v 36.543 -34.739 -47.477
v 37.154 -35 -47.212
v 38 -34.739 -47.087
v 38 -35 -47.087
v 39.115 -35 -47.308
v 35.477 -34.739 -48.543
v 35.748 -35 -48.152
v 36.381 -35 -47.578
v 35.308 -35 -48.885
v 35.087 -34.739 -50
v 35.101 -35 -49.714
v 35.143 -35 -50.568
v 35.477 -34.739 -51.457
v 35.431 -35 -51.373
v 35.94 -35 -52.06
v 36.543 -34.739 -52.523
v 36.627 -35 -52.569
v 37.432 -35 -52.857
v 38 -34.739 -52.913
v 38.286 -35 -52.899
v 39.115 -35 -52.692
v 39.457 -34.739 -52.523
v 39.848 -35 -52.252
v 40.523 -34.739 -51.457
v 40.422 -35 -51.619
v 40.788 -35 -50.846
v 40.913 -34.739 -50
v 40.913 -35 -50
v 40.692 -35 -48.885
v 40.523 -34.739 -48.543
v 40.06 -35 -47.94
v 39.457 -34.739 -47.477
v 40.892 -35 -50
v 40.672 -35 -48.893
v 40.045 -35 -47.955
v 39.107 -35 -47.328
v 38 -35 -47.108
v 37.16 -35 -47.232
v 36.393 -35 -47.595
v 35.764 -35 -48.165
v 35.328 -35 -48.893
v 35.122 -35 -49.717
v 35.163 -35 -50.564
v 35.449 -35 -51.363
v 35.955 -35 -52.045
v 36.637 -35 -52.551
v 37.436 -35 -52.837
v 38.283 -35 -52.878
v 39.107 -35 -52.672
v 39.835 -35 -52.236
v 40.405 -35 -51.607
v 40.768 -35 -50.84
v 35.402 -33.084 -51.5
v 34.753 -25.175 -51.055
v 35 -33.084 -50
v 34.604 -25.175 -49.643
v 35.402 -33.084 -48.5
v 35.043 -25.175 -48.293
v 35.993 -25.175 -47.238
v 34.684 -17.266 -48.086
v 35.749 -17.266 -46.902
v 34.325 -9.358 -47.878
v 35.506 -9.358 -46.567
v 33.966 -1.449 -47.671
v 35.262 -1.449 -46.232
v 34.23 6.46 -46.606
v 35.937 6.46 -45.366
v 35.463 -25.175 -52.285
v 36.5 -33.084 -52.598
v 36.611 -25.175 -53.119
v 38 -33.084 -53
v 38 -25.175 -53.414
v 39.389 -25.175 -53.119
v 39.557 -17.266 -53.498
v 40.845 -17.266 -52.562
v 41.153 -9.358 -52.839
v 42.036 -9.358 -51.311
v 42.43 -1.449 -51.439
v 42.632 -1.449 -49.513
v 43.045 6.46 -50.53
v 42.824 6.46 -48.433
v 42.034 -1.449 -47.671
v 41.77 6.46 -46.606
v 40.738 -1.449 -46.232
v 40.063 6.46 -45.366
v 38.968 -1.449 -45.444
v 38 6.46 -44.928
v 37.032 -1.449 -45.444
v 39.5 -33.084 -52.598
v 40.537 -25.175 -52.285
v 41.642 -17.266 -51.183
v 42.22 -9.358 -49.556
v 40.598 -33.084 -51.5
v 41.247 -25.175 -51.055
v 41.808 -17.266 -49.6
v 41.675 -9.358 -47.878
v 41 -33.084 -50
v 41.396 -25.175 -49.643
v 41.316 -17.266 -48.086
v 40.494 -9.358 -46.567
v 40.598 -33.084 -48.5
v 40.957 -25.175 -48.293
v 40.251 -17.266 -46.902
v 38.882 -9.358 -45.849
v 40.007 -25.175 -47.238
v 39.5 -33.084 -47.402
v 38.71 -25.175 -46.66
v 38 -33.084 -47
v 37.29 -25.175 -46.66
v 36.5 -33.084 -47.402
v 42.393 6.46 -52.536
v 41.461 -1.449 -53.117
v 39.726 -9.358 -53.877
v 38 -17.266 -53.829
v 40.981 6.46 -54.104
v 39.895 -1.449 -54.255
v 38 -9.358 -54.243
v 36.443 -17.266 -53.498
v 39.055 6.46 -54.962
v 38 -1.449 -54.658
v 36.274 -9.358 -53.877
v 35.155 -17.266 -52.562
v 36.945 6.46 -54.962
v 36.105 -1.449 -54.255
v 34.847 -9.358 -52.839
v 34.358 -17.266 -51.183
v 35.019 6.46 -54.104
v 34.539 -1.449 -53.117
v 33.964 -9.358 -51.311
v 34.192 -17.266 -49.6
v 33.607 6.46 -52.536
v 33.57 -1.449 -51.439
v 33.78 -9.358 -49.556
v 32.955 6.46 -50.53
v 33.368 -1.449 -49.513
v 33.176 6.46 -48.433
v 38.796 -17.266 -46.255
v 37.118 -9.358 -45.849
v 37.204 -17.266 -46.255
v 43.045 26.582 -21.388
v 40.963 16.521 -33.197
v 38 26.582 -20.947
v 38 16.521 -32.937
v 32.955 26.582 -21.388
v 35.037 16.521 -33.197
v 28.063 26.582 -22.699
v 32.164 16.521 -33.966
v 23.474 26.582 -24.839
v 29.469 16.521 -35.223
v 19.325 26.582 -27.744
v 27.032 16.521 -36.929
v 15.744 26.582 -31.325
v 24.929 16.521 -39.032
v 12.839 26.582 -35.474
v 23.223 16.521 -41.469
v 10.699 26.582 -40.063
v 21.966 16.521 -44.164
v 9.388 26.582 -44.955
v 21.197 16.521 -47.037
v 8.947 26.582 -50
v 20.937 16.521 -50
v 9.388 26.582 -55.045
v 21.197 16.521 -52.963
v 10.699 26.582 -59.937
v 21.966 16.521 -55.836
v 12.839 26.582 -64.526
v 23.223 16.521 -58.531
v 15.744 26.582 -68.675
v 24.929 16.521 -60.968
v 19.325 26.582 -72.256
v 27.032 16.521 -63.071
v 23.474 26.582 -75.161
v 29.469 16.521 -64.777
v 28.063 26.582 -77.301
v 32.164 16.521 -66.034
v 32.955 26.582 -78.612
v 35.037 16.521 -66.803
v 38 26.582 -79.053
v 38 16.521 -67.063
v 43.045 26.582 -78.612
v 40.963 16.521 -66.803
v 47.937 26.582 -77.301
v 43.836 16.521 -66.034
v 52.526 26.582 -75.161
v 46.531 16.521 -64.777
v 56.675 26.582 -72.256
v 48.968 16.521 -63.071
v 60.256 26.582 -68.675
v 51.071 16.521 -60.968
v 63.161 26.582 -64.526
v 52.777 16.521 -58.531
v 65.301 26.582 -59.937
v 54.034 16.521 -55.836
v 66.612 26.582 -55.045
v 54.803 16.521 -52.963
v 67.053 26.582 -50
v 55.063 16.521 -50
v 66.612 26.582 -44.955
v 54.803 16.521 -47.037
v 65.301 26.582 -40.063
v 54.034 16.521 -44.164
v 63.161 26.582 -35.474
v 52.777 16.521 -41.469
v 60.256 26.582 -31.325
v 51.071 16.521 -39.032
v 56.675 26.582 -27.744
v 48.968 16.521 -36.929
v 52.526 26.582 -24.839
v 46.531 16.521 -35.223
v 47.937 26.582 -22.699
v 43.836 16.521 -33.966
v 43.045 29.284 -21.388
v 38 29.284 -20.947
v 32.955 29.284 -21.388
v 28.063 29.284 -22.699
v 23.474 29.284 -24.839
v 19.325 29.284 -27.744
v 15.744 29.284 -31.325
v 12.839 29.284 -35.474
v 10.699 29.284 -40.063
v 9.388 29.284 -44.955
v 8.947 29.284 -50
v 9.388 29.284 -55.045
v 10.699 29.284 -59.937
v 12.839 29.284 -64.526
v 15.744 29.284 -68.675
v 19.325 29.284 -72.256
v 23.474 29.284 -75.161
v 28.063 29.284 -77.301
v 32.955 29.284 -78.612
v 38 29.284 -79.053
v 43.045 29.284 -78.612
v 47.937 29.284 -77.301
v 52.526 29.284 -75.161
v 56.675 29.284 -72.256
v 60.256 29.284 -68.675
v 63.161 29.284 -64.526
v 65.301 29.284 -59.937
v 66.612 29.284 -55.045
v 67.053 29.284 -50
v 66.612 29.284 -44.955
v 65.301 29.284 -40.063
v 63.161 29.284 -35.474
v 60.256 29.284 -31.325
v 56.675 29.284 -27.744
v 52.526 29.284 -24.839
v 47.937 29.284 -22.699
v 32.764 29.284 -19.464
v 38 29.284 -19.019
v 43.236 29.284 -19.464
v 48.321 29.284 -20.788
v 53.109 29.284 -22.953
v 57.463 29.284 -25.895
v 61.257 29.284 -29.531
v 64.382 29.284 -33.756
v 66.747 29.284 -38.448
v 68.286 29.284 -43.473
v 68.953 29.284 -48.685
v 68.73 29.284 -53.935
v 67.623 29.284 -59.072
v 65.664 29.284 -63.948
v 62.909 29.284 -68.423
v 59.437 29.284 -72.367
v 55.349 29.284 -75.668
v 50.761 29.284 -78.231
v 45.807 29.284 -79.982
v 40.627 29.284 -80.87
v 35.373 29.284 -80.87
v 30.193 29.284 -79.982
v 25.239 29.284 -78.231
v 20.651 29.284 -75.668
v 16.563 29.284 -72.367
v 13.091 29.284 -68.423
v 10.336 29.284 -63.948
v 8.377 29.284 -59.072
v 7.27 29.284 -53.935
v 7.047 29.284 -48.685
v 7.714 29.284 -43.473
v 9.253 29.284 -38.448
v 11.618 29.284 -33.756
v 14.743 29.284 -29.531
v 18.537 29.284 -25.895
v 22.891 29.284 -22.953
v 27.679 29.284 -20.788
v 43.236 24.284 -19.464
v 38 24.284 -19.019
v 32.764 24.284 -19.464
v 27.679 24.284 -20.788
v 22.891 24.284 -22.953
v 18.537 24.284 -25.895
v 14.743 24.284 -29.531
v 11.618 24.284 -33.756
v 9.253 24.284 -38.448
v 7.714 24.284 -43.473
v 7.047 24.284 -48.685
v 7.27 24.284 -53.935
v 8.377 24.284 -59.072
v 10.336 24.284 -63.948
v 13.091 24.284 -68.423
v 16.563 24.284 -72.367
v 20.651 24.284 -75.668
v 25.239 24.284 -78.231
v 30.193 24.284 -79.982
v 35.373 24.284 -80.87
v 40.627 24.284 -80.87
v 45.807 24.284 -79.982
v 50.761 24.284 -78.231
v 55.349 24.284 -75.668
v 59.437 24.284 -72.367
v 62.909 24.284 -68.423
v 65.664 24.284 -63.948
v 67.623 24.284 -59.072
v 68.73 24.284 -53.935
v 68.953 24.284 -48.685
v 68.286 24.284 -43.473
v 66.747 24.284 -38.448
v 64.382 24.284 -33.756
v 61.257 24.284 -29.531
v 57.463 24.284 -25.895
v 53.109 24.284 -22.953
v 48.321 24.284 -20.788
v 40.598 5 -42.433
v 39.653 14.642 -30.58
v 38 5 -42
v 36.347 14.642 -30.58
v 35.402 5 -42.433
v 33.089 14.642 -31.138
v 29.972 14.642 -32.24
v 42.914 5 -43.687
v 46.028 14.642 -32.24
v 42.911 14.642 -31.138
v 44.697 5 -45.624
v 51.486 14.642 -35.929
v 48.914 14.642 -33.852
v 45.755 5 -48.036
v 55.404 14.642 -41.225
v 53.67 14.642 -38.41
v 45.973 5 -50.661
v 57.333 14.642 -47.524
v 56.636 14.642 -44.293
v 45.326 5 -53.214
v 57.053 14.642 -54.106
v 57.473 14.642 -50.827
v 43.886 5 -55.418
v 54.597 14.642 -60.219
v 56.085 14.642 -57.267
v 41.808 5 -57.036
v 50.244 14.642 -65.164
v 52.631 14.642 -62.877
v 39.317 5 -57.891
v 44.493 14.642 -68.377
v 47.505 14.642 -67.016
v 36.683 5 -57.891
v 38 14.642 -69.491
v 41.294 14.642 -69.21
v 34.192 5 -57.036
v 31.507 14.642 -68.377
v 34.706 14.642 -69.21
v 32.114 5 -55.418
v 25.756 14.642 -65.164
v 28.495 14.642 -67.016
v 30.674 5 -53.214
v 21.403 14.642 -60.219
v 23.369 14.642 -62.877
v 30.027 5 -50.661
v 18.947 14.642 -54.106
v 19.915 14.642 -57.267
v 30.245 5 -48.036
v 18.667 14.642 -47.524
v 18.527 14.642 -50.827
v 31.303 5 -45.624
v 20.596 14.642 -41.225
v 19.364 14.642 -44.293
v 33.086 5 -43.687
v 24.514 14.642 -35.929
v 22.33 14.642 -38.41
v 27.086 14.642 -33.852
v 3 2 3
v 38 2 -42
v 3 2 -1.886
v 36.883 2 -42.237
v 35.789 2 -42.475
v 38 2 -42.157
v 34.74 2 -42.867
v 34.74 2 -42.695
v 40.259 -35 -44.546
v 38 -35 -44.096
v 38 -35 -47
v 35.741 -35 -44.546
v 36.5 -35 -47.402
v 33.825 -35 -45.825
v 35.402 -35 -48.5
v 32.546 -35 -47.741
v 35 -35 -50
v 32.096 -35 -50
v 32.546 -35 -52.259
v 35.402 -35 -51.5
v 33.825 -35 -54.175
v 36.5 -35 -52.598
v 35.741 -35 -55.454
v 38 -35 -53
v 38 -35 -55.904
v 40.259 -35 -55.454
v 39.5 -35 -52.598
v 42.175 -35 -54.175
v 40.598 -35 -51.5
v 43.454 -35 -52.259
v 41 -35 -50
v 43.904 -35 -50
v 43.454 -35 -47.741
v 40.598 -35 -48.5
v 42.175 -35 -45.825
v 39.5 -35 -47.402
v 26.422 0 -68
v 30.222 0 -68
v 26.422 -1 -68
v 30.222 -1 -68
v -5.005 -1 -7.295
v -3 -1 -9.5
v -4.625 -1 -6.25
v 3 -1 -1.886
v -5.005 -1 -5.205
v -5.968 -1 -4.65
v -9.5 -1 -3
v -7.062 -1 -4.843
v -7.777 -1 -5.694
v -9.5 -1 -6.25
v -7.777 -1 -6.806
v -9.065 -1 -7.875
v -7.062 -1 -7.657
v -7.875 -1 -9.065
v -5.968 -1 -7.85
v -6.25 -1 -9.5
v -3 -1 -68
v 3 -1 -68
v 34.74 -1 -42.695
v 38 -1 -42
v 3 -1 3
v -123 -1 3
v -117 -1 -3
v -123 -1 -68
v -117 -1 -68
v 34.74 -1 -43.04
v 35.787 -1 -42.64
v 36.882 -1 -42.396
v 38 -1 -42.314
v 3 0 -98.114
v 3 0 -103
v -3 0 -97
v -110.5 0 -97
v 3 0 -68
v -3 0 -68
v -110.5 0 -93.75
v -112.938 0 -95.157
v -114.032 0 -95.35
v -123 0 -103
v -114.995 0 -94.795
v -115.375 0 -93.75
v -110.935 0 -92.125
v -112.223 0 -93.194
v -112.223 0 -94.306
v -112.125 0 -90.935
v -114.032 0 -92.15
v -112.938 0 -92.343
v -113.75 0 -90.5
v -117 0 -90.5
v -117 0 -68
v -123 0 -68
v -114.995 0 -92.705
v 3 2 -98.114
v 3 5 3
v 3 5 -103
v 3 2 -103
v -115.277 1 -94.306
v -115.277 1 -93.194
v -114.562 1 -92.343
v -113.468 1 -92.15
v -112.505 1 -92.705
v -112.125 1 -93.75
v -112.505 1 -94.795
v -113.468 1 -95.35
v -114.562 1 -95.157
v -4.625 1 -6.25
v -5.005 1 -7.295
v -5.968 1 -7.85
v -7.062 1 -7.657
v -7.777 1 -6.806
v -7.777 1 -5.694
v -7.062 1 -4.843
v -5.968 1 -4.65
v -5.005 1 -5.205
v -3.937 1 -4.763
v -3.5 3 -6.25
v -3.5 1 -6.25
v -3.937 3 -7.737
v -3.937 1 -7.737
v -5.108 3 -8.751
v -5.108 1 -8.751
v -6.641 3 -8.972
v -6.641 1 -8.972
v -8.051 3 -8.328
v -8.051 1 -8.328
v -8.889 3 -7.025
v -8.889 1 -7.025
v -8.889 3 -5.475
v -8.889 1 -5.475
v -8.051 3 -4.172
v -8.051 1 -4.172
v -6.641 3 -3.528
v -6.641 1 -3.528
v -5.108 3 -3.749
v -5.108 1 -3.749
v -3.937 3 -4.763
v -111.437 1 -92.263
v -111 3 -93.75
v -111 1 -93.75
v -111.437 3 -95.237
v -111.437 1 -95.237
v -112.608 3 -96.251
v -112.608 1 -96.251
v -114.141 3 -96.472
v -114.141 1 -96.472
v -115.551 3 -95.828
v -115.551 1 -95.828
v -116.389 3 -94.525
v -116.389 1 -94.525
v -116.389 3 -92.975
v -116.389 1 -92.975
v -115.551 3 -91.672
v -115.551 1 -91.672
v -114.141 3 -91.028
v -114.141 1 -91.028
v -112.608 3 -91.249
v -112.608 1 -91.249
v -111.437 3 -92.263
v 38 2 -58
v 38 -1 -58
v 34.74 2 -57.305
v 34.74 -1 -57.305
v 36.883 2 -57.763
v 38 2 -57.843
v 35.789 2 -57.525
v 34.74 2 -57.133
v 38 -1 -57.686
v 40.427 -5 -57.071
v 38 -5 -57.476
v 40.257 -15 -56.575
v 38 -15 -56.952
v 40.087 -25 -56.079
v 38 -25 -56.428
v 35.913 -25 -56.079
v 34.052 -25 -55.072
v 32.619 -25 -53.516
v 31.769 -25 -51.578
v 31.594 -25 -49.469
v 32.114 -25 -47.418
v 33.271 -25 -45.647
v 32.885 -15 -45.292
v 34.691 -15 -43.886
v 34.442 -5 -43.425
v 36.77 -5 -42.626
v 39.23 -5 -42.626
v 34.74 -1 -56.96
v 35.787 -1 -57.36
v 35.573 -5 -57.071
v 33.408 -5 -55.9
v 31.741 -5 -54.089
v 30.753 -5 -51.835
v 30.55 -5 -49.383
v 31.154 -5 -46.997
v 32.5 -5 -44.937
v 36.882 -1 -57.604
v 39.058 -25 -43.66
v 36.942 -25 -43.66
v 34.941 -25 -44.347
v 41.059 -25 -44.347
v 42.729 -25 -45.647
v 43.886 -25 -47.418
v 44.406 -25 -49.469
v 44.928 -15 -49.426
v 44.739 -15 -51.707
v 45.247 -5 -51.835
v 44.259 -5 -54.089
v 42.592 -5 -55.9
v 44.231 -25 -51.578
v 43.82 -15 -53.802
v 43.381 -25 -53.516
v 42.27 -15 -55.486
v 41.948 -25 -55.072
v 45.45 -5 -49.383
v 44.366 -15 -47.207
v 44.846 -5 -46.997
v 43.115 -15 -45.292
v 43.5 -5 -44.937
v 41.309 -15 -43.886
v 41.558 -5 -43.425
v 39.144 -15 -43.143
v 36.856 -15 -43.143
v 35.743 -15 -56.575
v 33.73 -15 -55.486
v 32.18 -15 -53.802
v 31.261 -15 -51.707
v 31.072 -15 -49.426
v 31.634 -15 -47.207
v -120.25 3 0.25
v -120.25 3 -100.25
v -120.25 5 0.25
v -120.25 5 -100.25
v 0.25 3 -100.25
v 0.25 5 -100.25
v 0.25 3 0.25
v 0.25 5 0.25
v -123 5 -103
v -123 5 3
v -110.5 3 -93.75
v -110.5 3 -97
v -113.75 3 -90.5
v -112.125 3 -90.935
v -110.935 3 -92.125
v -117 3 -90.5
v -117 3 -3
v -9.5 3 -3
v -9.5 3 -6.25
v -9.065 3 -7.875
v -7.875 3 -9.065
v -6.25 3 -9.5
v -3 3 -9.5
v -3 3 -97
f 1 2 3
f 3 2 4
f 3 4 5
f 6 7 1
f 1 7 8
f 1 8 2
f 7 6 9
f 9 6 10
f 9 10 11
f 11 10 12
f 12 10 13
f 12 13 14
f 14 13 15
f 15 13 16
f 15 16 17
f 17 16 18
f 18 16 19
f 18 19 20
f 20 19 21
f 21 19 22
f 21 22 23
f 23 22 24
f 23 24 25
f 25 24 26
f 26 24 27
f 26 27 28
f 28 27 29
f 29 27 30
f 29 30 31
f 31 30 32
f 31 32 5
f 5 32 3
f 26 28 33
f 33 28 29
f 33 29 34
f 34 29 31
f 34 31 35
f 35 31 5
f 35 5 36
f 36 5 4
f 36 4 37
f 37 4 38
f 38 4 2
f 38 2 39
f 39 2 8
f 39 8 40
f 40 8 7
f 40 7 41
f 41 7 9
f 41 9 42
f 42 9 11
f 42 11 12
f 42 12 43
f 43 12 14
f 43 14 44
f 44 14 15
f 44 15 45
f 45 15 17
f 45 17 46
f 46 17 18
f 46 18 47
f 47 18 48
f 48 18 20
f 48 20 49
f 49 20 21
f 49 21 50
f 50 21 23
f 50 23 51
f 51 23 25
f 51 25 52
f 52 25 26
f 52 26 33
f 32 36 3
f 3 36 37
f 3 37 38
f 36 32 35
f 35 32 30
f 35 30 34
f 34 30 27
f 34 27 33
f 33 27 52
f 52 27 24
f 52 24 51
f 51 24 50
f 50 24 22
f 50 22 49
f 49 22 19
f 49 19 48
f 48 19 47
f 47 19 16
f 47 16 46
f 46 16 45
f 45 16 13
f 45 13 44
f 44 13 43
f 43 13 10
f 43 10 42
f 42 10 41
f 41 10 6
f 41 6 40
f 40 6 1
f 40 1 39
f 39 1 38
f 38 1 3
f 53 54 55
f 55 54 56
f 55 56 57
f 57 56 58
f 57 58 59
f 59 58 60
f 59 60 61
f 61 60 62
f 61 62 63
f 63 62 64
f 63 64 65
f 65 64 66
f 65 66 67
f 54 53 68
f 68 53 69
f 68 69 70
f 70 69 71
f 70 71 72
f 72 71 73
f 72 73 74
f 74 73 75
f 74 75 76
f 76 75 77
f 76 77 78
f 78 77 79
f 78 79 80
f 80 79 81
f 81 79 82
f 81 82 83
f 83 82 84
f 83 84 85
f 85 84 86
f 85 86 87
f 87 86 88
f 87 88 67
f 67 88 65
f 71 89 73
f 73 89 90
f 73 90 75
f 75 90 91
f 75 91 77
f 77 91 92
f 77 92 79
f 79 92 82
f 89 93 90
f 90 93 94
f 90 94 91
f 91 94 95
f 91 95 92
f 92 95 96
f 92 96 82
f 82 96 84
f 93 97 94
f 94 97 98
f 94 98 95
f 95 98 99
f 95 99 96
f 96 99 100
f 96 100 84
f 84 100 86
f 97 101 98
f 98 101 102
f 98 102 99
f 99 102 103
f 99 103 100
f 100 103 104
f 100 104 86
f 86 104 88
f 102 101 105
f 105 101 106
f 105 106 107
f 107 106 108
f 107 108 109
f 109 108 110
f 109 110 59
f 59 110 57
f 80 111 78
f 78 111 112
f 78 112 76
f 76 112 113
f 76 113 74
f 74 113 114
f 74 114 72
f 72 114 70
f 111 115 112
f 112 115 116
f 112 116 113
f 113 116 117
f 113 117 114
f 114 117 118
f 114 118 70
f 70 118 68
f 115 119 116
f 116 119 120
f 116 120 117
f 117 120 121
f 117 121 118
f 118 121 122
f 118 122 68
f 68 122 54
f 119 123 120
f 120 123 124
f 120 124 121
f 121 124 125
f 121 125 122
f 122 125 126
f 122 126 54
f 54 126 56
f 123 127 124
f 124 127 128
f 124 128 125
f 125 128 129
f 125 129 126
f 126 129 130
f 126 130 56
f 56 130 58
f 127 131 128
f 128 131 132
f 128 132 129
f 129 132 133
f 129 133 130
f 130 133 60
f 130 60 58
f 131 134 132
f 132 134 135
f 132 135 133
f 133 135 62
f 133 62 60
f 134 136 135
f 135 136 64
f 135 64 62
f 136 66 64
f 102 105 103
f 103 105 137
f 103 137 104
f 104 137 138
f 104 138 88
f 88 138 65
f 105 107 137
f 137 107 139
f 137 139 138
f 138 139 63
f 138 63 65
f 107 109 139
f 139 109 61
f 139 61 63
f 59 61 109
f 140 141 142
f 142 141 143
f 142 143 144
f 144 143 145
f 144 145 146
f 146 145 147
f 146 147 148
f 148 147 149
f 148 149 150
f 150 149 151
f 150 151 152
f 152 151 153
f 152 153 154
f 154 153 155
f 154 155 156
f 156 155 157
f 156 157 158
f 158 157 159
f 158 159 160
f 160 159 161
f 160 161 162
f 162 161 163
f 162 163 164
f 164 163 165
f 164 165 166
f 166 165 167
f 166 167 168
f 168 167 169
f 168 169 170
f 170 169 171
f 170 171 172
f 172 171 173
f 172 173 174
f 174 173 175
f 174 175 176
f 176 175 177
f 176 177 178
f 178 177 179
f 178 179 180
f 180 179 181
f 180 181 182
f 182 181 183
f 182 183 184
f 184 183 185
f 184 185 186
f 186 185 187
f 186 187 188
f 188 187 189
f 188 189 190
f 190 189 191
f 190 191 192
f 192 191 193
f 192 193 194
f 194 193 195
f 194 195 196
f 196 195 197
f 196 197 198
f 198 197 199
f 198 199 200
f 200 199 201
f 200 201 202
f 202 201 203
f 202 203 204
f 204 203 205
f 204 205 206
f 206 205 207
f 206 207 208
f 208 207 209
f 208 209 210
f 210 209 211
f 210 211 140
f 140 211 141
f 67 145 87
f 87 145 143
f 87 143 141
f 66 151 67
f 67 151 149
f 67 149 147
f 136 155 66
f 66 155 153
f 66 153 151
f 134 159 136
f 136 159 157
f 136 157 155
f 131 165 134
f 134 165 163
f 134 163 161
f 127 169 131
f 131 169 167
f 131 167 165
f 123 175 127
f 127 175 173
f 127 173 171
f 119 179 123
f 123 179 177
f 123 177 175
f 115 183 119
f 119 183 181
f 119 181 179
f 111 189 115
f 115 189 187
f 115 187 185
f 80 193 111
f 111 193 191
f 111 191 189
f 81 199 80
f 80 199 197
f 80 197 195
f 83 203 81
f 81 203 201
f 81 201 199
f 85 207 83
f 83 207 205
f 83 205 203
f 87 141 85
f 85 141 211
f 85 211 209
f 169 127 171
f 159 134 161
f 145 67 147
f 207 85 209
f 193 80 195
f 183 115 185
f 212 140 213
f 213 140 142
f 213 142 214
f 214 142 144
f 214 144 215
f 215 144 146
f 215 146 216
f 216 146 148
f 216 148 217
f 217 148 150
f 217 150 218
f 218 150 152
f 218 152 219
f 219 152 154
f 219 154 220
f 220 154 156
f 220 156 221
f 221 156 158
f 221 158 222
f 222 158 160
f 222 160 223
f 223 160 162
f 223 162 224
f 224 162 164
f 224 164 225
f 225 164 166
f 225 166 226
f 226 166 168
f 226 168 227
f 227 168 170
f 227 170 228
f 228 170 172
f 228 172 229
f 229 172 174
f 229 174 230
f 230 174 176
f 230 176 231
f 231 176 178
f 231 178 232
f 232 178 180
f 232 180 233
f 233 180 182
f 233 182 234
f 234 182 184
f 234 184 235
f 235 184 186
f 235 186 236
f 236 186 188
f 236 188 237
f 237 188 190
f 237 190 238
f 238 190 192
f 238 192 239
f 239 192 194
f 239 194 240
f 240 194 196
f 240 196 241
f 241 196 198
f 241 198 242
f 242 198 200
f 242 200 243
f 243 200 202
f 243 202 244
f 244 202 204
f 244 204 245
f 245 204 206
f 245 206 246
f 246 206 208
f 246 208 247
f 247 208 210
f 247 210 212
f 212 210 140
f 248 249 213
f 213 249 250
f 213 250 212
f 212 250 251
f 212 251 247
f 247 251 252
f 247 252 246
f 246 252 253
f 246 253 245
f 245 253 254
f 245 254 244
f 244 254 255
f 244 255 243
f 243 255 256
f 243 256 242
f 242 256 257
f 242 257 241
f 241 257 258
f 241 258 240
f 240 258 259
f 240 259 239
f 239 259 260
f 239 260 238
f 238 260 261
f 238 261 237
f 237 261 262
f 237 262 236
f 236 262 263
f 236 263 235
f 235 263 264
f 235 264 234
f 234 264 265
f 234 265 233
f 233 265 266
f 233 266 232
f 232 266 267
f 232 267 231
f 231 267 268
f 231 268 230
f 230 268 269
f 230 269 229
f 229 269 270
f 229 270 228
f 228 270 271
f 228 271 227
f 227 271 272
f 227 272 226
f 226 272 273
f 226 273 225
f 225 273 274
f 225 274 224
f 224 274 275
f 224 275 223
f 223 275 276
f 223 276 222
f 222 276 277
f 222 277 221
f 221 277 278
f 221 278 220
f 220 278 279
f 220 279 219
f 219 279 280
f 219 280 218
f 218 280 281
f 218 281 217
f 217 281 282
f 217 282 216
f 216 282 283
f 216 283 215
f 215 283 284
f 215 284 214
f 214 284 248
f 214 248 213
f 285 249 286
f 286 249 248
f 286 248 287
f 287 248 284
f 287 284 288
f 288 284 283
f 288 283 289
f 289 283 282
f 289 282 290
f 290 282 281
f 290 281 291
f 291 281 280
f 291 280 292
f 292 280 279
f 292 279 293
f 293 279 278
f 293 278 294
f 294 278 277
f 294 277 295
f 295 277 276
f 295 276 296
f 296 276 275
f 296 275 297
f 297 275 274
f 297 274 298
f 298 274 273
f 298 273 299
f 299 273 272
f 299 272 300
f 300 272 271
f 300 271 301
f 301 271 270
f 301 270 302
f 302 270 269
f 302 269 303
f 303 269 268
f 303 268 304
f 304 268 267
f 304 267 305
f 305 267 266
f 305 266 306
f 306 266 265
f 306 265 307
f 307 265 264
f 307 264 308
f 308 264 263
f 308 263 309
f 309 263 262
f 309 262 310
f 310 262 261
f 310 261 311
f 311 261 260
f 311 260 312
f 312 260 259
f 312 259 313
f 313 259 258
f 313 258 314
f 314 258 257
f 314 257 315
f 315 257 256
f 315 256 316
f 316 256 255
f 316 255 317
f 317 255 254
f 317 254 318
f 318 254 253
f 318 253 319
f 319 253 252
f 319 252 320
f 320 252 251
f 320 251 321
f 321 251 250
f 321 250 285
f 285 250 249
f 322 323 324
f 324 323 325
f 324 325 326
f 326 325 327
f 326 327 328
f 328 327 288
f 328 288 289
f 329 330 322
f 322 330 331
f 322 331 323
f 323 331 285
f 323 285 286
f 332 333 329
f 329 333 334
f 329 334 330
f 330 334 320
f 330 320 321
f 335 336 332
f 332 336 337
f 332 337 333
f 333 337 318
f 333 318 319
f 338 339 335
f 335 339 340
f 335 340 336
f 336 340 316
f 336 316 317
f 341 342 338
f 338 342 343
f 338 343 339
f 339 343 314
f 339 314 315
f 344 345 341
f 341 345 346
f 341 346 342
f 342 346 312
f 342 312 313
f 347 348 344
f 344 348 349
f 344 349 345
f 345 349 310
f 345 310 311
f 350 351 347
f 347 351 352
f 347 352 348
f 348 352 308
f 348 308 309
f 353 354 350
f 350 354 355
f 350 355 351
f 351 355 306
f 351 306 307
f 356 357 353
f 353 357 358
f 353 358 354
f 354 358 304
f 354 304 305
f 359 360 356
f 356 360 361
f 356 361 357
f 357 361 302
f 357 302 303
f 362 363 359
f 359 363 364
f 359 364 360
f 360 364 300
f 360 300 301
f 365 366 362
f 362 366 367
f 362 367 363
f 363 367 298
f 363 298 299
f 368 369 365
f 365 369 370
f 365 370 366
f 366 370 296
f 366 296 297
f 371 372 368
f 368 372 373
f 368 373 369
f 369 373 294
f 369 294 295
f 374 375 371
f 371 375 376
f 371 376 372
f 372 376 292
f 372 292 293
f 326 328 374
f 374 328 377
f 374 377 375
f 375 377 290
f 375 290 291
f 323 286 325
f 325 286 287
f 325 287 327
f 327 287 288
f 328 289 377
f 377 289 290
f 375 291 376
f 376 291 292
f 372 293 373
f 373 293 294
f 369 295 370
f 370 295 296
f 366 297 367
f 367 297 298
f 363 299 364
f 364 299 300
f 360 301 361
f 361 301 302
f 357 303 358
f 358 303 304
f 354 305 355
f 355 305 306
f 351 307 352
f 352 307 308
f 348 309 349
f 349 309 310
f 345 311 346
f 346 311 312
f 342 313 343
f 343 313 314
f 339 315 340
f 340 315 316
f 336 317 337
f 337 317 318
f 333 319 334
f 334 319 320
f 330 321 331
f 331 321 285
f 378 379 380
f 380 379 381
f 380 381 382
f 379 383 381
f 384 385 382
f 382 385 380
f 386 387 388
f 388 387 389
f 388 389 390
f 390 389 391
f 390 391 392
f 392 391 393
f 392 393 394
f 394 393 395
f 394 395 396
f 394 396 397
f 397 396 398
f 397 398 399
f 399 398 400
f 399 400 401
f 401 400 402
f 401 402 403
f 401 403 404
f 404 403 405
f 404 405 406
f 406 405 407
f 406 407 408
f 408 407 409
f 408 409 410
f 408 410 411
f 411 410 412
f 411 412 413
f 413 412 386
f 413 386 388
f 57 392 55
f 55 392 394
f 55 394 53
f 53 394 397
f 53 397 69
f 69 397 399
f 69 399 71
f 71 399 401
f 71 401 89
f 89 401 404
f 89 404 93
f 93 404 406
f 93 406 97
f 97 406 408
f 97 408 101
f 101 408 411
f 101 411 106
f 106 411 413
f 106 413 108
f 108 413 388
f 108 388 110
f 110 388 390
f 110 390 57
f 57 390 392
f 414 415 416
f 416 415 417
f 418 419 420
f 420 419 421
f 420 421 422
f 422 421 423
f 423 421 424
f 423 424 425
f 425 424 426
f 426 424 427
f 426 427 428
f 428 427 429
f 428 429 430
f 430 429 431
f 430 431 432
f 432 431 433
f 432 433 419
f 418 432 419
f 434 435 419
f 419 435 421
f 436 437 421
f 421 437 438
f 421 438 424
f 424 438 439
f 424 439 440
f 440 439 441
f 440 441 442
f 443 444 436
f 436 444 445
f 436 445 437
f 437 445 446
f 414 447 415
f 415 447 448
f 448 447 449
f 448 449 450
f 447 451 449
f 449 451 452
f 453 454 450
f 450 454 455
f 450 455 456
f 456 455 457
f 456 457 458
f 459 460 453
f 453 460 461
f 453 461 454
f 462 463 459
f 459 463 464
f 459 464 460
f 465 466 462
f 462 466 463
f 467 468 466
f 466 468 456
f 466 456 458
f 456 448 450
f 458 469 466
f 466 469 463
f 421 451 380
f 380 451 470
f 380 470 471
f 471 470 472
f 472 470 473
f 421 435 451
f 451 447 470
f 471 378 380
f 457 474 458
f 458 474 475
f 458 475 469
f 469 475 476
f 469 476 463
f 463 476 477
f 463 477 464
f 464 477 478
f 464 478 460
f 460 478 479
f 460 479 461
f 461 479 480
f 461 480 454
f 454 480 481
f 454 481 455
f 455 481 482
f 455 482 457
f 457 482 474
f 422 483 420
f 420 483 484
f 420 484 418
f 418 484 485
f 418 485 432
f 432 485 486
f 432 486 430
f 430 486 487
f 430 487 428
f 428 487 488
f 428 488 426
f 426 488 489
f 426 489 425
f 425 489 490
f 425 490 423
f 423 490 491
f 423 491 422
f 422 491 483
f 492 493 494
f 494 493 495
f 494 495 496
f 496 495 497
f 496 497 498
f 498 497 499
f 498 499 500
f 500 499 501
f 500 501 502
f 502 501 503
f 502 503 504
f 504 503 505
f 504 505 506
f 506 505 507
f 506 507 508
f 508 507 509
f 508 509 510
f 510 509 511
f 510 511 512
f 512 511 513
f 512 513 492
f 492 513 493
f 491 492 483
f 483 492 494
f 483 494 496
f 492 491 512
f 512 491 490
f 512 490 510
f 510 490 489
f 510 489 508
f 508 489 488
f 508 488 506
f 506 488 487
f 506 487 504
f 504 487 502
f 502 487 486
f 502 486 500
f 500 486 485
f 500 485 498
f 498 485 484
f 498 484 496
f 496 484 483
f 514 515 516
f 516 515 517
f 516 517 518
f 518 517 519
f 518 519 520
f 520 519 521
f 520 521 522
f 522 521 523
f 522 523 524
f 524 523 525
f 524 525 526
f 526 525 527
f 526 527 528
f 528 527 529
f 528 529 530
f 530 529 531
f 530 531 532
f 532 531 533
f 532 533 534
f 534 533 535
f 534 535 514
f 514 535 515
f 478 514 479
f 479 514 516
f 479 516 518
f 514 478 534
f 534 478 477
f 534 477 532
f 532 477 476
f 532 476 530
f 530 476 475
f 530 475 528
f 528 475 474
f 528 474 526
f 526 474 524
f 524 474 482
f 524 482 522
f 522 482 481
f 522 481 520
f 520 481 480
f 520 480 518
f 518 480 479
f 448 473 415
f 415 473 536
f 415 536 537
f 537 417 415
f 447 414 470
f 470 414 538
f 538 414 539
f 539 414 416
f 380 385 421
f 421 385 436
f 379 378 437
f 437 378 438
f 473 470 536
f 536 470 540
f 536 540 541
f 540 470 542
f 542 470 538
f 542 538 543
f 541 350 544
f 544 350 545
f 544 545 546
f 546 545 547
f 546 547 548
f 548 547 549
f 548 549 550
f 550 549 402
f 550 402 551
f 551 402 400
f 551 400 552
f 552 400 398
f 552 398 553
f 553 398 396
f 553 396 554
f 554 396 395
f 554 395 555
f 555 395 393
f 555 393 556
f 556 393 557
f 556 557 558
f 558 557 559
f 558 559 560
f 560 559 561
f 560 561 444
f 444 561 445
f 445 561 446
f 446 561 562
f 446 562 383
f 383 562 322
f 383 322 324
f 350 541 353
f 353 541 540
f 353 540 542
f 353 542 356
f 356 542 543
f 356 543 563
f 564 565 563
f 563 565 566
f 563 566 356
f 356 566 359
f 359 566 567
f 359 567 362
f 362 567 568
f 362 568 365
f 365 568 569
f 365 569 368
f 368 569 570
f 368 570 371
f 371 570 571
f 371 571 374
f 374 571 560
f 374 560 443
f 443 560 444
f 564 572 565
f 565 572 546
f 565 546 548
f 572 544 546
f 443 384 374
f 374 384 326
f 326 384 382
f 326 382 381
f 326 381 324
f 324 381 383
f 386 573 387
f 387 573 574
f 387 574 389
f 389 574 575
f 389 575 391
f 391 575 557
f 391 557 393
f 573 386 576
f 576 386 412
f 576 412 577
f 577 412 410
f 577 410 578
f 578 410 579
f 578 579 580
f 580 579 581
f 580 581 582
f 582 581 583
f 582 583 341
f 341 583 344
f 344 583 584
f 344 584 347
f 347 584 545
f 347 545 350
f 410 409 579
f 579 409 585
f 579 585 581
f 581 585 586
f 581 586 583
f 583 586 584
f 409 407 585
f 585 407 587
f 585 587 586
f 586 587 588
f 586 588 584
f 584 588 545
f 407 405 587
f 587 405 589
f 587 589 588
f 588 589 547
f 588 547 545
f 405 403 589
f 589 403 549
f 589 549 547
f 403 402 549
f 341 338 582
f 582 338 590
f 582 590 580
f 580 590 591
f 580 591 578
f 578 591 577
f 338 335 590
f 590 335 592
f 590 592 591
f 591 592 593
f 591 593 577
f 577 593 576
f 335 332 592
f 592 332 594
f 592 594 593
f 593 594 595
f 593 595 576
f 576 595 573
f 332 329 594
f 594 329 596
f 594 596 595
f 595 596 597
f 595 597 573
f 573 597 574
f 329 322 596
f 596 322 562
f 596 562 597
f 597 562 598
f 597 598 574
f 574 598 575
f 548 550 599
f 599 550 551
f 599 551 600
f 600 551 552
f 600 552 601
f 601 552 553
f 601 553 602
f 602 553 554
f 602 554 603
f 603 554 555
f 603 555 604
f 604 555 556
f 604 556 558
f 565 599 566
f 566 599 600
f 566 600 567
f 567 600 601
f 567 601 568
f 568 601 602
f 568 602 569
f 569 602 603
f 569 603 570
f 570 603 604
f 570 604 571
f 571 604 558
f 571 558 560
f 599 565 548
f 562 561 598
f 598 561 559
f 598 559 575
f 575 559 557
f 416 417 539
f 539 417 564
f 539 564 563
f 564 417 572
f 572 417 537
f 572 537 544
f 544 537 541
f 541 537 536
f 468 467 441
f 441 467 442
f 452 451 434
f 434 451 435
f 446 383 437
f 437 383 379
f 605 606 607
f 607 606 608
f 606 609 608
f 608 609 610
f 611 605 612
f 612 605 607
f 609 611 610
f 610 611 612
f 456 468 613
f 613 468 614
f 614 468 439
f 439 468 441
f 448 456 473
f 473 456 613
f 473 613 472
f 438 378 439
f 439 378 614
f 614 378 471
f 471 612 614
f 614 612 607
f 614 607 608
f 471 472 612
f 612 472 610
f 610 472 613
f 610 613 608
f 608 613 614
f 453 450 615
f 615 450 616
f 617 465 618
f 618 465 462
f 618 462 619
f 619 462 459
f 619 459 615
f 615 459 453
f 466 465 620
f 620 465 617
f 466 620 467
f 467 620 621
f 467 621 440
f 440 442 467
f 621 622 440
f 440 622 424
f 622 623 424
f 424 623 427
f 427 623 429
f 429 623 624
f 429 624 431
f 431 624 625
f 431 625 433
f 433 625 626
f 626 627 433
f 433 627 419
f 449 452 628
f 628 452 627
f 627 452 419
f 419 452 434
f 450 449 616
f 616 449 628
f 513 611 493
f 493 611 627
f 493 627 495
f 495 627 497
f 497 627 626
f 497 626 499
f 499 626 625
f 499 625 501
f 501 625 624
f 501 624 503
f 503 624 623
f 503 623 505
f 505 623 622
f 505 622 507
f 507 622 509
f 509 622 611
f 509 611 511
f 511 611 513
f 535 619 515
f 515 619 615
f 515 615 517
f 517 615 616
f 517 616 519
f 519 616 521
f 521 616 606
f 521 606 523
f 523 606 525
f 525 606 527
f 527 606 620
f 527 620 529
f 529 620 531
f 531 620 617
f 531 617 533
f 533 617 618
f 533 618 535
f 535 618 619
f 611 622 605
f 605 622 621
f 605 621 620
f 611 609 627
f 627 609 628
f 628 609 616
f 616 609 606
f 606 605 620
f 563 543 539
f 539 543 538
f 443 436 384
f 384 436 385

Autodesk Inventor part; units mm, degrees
ref_plane "YZ Plane" through (0, 0, 0) normal (1, 0, 0) x (0, 1, 0)
ref_plane "XZ Plane" through (0, 0, 0) normal (0, 1, 0) x (-1, 0, 0)
ref_plane "XY Plane" through (0, 0, 0) normal (0, 0, 1) x (1, 0, 0)
sketch "Sketch1" plane through (0, 0, 0) normal (0, 1, 0) x (-1, 0, 0)
  line L0 (0, 0) -> (120, 0)
  line L1 (120, 0) -> (120, -100)
  line L2 (120, -100) -> (0, -100)
  line L3 (0, -100) -> (0, 0)
  line L4 (117, -97) -> (117, -3)
  line L5 (117, -3) -> (3, -3)
  line L6 (3, -3) -> (3, -97)
  line L7 (3, -97) -> (117, -97)
  line L8 (123, -103) -> (123, 3)
  line L9 (123, 3) -> (-3, 3)
  line L10 (-3, 3) -> (-3, -103)
  line L11 (-3, -103) -> (123, -103)
  line L12 (120.25, -100.25) -> (120.25, 0.25)
  line L13 (120.25, 0.25) -> (-0.25, 0.25)
  line L14 (-0.25, 0.25) -> (-0.25, -100.25)
  line L15 (-0.25, -100.25) -> (120.25, -100.25)
  circle A0 centre (6.25, -6.25) radius 3.25
  line L16 (9.5, -6.25) -> (9.5, -3)
  line L17 (6.25, -9.5) -> (3, -9.5)
  circle A1 centre (113.75, -93.75) radius 3.25
  line L18 (113.75, -90.5) -> (117, -90.5)
  line L19 (110.5, -93.75) -> (110.5, -97)
  dimension "d0" = 120
  dimension "d1" = 100
  dimension "d2" = 3
  dimension "d3" = 3
  dimension "d4" = 0.25
  dimension "d9" = 6.5
  dimension "d10" = 3.25
  dimension "d11" = 3.25
  dimension "d12" = 3.25
  dimension "d13" = 6.5
  dimension "d14" = 3.25
  dimension "d15" = 3.25
extrude "Extrusion1" add sketch "Sketch1" along normal blind 3 contours L0 L1 L2 L3 | L7 A1 L4 | A1 L18 L4 | A1 | L7 L19 A1 | L16 A0 L5 | L6 A0 L17 | A0 L6 L5 | A0 | L15 L14 L13 L12
extrude "Extrusion2" add sketch "Sketch1" along normal blind 5 contours L11 L10 L9 L8
sketch "Sketch2" plane through (0, 0, 0) normal (0, -1, 0) x (1, 0, 0)
  line L0 (3, -103) -> (-123, -103) construction
  line L1 (-60, -103) -> (-60, 3.5996) construction
  line L2 (-3, -97) -> (-3, -9.5) projected
  line L3 (3, -103) -> (-3, -103)
  line L4 (-3, -103) -> (-3, -68)
  line L5 (-3, -68) -> (3, -68)
  line L6 (3, -68) -> (3, -103)
  line L7 (-3, -97) -> (-60, -97)
  line L8 (-60, -97) -> (-60, -103)
  line L9 (-60, -103) -> (-3, -103)
  line L10 (-3, -103) -> (-3, -97)
  line L11 (-123, -103) -> (3, -103) construction
  line L12 (-117, -97) -> (-117, -9.5)
  line L13 (-123, -103) -> (-117, -103)
  line L14 (-117, -103) -> (-117, -68)
  line L15 (-117, -68) -> (-123, -68)
  line L16 (-123, -68) -> (-123, -103)
  line L17 (-117, -97) -> (-60, -97)
  line L18 (-60, -103) -> (-117, -103)
  line L19 (-117, -103) -> (-117, -97)
  circle A0 centre (-113.75, -93.75) radius 3.25
  line L20 (-117, -90.5) -> (-113.75, -90.5) projected
  line L21 (-117, -90.5) -> (-113.75, -90.5)
  line L22 (-110.5, -93.75) -> (-110.5, -97)
  line L23 (-123, -68) -> (-117, -68)
  line L24 (-117, -68) -> (-117, 3)
  line L25 (-117, 3) -> (-123, 3)
  line L26 (-123, 3) -> (-123, -68)
  line L27 (-9.5, -3) -> (-117, -3) projected
  line L28 (-123, 3) -> (3, 3) projected
  line L29 (-117, -3) -> (3, -3)
  line L30 (3, -3) -> (3, 3)
  line L31 (3, 3) -> (-117, 3)
  line L32 (-117, 3) -> (-117, -3)
  line L33 (-3, -68) -> (3, -68)
  line L34 (3, -68) -> (3, -3)
  line L35 (3, -3) -> (-3, -3)
  line L36 (-3, -3) -> (-3, -68)
  circle A1 centre (-6.25, -6.25) radius 3.25
  arc A2 (-9.5, -6.25) -> (-6.25, -9.5) centre (-6.25, -6.25) ccw projected
  line L37 (-3, -9.5) -> (-6.25, -9.5)
  line L38 (-9.5, -6.25) -> (-9.5, -3)
  point P0 (0, 0)
  point P1 (-117, 3)
  point P2 (-117, -9.5)
  dimension "d16" = 35
  dimension "d17" = 6.5
  dimension "d18" = 3.25
  dimension "d19" = 3.25
  dimension "d20" = 3.25
  dimension "d21" = 106.5996
  dimension "d67" = 0
  dimension "d68" = 0
  dimension "d69" = 0
  dimension "d70" = 6.5
extrude "Extrusion3" add sketch "Sketch2" along normal blind 1 contours L2 L36 L29 L34 L5 | L37 A1 L36 | A1 L29 L36 | A1 | L29 L27 L24 L28 L30 | A1 L38 L29 | L24 L12 L15 L26 L25
ref_plane "Work Plane1" through (38, 0, 3) normal (1, 0, 0) x (0, 0, -1)
sketch "Sketch3" plane through (38, 0, 3) normal (1, 0, 0) x (0, 0, -1)
  line L0 (53, -10.8881) -> (53, 16.7673)
  line L1 (106, 5) -> (0, 5) construction
  line L2 (106, 0) -> (106, 5) construction
  line L3 (106, 5) -> (106, -1) construction
  line L4 (45, 5) -> (22.0187, 24.2836)
  line L5 (45, 5) -> (47.0963, -35)
  line L6 (53, 5) -> (37.5678, 5) construction
  line L7 (50.0867, -34.7385) -> (47.9276, 6.4597)
  line L8 (47.9276, 6.4597) -> (23.947, 26.5818)
  line L9 (22.0187, 24.2836) -> (23.947, 26.5818)
  line L10 (22.0187, 24.2836) -> (22.0187, 29.2836)
  line L11 (22.0187, 29.2836) -> (23.947, 29.2836)
  line L12 (23.947, 29.2836) -> (23.947, 26.5818)
  line L13 (47.0963, -35) -> (50.1079, -35)
  line L14 (50.1079, -35) -> (50.0867, -34.7385)
  point P0 (3, 0)
  dimension "d26" = 106
  dimension "d27" = 16
  dimension "d28" = 30
  dimension "d29" = 93
  dimension "d30" = 40
  dimension "d31" = 40
  dimension "d32" = 3
  dimension "d34" = 3
  dimension "d37" = 5
  dimension "d48" = 0.2615
  dimension "d49" = 3.0116
revolve "Revolution1" add sketch "Sketch3" angle 360 about axis through (38, -10.8881, -50) along (0, 1, 0)
sketch "Sketch4" plane through (0, 0, 0) normal (0, 1, 0) x (-1, 0, 0)
  line L0 (-3, -68) -> (-3, -103) projected
  circle A0 centre (-38, -50) radius 8 projected
  line L1 (-3, -1.8865) -> (-3, 3)
  line L2 (-3, -103) -> (-3, -98.1135)
  circle A1 centre (-38, -50) radius 5.0724 projected
  circle A2 centre (-38, -50) radius 5.9037 projected
  line L3 (-38, -50) -> (-3, -50) construction
  line L4 (-3, -103) -> (-3, -98.1135) construction
  line L5 (-38.3984, -57.7256) -> (-35.0429, -57.1307) construction
  line L6 (-3, 3) -> (-3, -1.8865)
  line L7 (-3, 3) -> (-3, -1.8865) construction
  line L8 (-38.3984, -42.2744) -> (-35.0429, -42.8693) construction
  line L9 (-3, -103) -> (-38, -58)
  line L10 (-38, -42) -> (-3, 3)
  line L11 (-0.6319, -101.1582) -> (-35.6319, -56.1582)
  line L12 (-35.6319, -43.8418) -> (-0.6319, 1.1582)
  point P0 (0, 0)
  point P1 (-34.7396, -42.6945)
  point P2 (-34.7396, -57.3055)
  dimension "d74" = 3
  dimension "d75" = 3
extrude "Extrusion4" add sketch "Sketch4" along normal blind 2 contours L0 L9 A0 L11 | L10 L1 L12 A0
sketch "Sketch6" plane through (38, -35, -50) normal (0, -1, 0) x (1, 0, 0)
  circle A0 centre (0, 0) radius 2.9133 projected
  circle A1 centre (0, 0) radius 3
  point P0 (-38, 50)
  dimension "d50" = 6
extrude "Extrusion6" cut sketch "Sketch6" against normal through all
sketch "Sketch7" plane through (0, 3, 0) normal (0, 1, 0) x (1, 0, 0)
  circle A0 centre (-113.75, 93.75) radius 2.75
  arc A1 (-113.75, 90.5) -> (-110.5, 93.75) centre (-113.75, 93.75) ccw projected
  circle A2 centre (-6.25, 6.25) radius 2.75
  arc A3 (-6.25, 9.5) -> (-9.5, 6.25) centre (-6.25, 6.25) ccw projected
  point P0 (0, 0)
  dimension "d53" = 5.5
  dimension "d54" = 0
  dimension "d55" = 0
  dimension "d56" = 5.5
  dimension "d57" = 0
  dimension "d58" = 0
extrude "Extrusion7" cut sketch "Sketch7" against normal blind 2
sketch "Sketch8" plane through (-6.25, 1, -6.25) normal (0, 1, 0) x (1, 0, 0)
  circle A0 centre (0, 0) radius 1.625
  circle A1 centre (0, 0) radius 2.75 projected
  circle A2 centre (-107.5, 87.5) radius 1.625
  circle A3 centre (-107.5, 87.5) radius 2.75 projected
  point P0 (6.25, -6.25)
  dimension "d61" = 3.25
  dimension "d62" = 1.125
  dimension "d63" = 3.25
  dimension "d64" = 1.125
extrude "Extrusion8" cut sketch "Sketch8" against normal blind 2 contours A0 | A2
sketch "Sketch9" plane through (0, 0, 0) normal (0, -1, 0) x (1, 0, 0)
  line L0 (3, -68) -> (-3, -68) projected
  line L1 (0, -68) -> (30.2222, -68)
  line L2 (3, -1.8865) -> (3, 3)
  line L3 (34.7396, -42.6945) -> (3, -1.8865) projected
  line L4 (3, -1.8865) -> (34.7396, -42.6945)
  line L5 (3, 3) -> (-123, 3) projected
  line L6 (3, 3) -> (38, -42)
  circle A0 centre (38, -50) radius 8 projected
  line L7 (38, -58) -> (3, -103) projected
  line L8 (30.2222, -68) -> (38, -58)
  line L9 (3, -98.1135) -> (34.7396, -57.3055) projected
  line L10 (34.7396, -57.3055) -> (26.4216, -68)
  point P0 (0, 0)
extrude "Extrusion9" add sketch "Sketch9" along normal blind 1 contours L9 A0 L7 L1 | L3 L2 L6 A0
sketch "Sketch11" plane through (0, 2, 0) normal (0, 1, 0) x (1, 0, 0)
  arc A0 (34.7396, 42.6945) -> (38, 42) centre (38, 50) ccw projected
  circle A1 centre (38, 50) radius 5.9037 projected
  circle A2 centre (38, 50) radius 8 projected
  point P0 (0, 0)
  point P1 (38.1855, 42.0022)
sketch "Sketch12" plane through (0, -1, 0) normal (0, -1, 0) x (1, 0, 0)
  arc A0 (38, -42) -> (34.7396, -42.6945) centre (38, -50) ccw projected
  line L0 (38, -42) -> (34.7396, -42)
  line L1 (34.7396, -42) -> (34.7396, -44.0733)
  line L2 (34.7396, -44.0733) -> (38, -44.0733)
  line L3 (38, -44.0733) -> (38, -42)
  circle A1 centre (38, -50) radius 8 construction
  line L4 (46, -50) -> (30, -50) construction
  line L5 (38, -58) -> (34.7396, -58)
  line L6 (34.7396, -58) -> (34.7396, -55.9267)
  line L7 (34.7396, -55.9267) -> (38, -55.9267)
  line L8 (38, -55.9267) -> (38, -58)
  point P0 (0, 0)
  dimension "d76" = 0
extrude "Extrusion10" add sketch "Sketch12" against normal blind 3 contours L3 L2 L1 A0 | L5 L6 L7 L8
properties part number "ResoarHållare"
